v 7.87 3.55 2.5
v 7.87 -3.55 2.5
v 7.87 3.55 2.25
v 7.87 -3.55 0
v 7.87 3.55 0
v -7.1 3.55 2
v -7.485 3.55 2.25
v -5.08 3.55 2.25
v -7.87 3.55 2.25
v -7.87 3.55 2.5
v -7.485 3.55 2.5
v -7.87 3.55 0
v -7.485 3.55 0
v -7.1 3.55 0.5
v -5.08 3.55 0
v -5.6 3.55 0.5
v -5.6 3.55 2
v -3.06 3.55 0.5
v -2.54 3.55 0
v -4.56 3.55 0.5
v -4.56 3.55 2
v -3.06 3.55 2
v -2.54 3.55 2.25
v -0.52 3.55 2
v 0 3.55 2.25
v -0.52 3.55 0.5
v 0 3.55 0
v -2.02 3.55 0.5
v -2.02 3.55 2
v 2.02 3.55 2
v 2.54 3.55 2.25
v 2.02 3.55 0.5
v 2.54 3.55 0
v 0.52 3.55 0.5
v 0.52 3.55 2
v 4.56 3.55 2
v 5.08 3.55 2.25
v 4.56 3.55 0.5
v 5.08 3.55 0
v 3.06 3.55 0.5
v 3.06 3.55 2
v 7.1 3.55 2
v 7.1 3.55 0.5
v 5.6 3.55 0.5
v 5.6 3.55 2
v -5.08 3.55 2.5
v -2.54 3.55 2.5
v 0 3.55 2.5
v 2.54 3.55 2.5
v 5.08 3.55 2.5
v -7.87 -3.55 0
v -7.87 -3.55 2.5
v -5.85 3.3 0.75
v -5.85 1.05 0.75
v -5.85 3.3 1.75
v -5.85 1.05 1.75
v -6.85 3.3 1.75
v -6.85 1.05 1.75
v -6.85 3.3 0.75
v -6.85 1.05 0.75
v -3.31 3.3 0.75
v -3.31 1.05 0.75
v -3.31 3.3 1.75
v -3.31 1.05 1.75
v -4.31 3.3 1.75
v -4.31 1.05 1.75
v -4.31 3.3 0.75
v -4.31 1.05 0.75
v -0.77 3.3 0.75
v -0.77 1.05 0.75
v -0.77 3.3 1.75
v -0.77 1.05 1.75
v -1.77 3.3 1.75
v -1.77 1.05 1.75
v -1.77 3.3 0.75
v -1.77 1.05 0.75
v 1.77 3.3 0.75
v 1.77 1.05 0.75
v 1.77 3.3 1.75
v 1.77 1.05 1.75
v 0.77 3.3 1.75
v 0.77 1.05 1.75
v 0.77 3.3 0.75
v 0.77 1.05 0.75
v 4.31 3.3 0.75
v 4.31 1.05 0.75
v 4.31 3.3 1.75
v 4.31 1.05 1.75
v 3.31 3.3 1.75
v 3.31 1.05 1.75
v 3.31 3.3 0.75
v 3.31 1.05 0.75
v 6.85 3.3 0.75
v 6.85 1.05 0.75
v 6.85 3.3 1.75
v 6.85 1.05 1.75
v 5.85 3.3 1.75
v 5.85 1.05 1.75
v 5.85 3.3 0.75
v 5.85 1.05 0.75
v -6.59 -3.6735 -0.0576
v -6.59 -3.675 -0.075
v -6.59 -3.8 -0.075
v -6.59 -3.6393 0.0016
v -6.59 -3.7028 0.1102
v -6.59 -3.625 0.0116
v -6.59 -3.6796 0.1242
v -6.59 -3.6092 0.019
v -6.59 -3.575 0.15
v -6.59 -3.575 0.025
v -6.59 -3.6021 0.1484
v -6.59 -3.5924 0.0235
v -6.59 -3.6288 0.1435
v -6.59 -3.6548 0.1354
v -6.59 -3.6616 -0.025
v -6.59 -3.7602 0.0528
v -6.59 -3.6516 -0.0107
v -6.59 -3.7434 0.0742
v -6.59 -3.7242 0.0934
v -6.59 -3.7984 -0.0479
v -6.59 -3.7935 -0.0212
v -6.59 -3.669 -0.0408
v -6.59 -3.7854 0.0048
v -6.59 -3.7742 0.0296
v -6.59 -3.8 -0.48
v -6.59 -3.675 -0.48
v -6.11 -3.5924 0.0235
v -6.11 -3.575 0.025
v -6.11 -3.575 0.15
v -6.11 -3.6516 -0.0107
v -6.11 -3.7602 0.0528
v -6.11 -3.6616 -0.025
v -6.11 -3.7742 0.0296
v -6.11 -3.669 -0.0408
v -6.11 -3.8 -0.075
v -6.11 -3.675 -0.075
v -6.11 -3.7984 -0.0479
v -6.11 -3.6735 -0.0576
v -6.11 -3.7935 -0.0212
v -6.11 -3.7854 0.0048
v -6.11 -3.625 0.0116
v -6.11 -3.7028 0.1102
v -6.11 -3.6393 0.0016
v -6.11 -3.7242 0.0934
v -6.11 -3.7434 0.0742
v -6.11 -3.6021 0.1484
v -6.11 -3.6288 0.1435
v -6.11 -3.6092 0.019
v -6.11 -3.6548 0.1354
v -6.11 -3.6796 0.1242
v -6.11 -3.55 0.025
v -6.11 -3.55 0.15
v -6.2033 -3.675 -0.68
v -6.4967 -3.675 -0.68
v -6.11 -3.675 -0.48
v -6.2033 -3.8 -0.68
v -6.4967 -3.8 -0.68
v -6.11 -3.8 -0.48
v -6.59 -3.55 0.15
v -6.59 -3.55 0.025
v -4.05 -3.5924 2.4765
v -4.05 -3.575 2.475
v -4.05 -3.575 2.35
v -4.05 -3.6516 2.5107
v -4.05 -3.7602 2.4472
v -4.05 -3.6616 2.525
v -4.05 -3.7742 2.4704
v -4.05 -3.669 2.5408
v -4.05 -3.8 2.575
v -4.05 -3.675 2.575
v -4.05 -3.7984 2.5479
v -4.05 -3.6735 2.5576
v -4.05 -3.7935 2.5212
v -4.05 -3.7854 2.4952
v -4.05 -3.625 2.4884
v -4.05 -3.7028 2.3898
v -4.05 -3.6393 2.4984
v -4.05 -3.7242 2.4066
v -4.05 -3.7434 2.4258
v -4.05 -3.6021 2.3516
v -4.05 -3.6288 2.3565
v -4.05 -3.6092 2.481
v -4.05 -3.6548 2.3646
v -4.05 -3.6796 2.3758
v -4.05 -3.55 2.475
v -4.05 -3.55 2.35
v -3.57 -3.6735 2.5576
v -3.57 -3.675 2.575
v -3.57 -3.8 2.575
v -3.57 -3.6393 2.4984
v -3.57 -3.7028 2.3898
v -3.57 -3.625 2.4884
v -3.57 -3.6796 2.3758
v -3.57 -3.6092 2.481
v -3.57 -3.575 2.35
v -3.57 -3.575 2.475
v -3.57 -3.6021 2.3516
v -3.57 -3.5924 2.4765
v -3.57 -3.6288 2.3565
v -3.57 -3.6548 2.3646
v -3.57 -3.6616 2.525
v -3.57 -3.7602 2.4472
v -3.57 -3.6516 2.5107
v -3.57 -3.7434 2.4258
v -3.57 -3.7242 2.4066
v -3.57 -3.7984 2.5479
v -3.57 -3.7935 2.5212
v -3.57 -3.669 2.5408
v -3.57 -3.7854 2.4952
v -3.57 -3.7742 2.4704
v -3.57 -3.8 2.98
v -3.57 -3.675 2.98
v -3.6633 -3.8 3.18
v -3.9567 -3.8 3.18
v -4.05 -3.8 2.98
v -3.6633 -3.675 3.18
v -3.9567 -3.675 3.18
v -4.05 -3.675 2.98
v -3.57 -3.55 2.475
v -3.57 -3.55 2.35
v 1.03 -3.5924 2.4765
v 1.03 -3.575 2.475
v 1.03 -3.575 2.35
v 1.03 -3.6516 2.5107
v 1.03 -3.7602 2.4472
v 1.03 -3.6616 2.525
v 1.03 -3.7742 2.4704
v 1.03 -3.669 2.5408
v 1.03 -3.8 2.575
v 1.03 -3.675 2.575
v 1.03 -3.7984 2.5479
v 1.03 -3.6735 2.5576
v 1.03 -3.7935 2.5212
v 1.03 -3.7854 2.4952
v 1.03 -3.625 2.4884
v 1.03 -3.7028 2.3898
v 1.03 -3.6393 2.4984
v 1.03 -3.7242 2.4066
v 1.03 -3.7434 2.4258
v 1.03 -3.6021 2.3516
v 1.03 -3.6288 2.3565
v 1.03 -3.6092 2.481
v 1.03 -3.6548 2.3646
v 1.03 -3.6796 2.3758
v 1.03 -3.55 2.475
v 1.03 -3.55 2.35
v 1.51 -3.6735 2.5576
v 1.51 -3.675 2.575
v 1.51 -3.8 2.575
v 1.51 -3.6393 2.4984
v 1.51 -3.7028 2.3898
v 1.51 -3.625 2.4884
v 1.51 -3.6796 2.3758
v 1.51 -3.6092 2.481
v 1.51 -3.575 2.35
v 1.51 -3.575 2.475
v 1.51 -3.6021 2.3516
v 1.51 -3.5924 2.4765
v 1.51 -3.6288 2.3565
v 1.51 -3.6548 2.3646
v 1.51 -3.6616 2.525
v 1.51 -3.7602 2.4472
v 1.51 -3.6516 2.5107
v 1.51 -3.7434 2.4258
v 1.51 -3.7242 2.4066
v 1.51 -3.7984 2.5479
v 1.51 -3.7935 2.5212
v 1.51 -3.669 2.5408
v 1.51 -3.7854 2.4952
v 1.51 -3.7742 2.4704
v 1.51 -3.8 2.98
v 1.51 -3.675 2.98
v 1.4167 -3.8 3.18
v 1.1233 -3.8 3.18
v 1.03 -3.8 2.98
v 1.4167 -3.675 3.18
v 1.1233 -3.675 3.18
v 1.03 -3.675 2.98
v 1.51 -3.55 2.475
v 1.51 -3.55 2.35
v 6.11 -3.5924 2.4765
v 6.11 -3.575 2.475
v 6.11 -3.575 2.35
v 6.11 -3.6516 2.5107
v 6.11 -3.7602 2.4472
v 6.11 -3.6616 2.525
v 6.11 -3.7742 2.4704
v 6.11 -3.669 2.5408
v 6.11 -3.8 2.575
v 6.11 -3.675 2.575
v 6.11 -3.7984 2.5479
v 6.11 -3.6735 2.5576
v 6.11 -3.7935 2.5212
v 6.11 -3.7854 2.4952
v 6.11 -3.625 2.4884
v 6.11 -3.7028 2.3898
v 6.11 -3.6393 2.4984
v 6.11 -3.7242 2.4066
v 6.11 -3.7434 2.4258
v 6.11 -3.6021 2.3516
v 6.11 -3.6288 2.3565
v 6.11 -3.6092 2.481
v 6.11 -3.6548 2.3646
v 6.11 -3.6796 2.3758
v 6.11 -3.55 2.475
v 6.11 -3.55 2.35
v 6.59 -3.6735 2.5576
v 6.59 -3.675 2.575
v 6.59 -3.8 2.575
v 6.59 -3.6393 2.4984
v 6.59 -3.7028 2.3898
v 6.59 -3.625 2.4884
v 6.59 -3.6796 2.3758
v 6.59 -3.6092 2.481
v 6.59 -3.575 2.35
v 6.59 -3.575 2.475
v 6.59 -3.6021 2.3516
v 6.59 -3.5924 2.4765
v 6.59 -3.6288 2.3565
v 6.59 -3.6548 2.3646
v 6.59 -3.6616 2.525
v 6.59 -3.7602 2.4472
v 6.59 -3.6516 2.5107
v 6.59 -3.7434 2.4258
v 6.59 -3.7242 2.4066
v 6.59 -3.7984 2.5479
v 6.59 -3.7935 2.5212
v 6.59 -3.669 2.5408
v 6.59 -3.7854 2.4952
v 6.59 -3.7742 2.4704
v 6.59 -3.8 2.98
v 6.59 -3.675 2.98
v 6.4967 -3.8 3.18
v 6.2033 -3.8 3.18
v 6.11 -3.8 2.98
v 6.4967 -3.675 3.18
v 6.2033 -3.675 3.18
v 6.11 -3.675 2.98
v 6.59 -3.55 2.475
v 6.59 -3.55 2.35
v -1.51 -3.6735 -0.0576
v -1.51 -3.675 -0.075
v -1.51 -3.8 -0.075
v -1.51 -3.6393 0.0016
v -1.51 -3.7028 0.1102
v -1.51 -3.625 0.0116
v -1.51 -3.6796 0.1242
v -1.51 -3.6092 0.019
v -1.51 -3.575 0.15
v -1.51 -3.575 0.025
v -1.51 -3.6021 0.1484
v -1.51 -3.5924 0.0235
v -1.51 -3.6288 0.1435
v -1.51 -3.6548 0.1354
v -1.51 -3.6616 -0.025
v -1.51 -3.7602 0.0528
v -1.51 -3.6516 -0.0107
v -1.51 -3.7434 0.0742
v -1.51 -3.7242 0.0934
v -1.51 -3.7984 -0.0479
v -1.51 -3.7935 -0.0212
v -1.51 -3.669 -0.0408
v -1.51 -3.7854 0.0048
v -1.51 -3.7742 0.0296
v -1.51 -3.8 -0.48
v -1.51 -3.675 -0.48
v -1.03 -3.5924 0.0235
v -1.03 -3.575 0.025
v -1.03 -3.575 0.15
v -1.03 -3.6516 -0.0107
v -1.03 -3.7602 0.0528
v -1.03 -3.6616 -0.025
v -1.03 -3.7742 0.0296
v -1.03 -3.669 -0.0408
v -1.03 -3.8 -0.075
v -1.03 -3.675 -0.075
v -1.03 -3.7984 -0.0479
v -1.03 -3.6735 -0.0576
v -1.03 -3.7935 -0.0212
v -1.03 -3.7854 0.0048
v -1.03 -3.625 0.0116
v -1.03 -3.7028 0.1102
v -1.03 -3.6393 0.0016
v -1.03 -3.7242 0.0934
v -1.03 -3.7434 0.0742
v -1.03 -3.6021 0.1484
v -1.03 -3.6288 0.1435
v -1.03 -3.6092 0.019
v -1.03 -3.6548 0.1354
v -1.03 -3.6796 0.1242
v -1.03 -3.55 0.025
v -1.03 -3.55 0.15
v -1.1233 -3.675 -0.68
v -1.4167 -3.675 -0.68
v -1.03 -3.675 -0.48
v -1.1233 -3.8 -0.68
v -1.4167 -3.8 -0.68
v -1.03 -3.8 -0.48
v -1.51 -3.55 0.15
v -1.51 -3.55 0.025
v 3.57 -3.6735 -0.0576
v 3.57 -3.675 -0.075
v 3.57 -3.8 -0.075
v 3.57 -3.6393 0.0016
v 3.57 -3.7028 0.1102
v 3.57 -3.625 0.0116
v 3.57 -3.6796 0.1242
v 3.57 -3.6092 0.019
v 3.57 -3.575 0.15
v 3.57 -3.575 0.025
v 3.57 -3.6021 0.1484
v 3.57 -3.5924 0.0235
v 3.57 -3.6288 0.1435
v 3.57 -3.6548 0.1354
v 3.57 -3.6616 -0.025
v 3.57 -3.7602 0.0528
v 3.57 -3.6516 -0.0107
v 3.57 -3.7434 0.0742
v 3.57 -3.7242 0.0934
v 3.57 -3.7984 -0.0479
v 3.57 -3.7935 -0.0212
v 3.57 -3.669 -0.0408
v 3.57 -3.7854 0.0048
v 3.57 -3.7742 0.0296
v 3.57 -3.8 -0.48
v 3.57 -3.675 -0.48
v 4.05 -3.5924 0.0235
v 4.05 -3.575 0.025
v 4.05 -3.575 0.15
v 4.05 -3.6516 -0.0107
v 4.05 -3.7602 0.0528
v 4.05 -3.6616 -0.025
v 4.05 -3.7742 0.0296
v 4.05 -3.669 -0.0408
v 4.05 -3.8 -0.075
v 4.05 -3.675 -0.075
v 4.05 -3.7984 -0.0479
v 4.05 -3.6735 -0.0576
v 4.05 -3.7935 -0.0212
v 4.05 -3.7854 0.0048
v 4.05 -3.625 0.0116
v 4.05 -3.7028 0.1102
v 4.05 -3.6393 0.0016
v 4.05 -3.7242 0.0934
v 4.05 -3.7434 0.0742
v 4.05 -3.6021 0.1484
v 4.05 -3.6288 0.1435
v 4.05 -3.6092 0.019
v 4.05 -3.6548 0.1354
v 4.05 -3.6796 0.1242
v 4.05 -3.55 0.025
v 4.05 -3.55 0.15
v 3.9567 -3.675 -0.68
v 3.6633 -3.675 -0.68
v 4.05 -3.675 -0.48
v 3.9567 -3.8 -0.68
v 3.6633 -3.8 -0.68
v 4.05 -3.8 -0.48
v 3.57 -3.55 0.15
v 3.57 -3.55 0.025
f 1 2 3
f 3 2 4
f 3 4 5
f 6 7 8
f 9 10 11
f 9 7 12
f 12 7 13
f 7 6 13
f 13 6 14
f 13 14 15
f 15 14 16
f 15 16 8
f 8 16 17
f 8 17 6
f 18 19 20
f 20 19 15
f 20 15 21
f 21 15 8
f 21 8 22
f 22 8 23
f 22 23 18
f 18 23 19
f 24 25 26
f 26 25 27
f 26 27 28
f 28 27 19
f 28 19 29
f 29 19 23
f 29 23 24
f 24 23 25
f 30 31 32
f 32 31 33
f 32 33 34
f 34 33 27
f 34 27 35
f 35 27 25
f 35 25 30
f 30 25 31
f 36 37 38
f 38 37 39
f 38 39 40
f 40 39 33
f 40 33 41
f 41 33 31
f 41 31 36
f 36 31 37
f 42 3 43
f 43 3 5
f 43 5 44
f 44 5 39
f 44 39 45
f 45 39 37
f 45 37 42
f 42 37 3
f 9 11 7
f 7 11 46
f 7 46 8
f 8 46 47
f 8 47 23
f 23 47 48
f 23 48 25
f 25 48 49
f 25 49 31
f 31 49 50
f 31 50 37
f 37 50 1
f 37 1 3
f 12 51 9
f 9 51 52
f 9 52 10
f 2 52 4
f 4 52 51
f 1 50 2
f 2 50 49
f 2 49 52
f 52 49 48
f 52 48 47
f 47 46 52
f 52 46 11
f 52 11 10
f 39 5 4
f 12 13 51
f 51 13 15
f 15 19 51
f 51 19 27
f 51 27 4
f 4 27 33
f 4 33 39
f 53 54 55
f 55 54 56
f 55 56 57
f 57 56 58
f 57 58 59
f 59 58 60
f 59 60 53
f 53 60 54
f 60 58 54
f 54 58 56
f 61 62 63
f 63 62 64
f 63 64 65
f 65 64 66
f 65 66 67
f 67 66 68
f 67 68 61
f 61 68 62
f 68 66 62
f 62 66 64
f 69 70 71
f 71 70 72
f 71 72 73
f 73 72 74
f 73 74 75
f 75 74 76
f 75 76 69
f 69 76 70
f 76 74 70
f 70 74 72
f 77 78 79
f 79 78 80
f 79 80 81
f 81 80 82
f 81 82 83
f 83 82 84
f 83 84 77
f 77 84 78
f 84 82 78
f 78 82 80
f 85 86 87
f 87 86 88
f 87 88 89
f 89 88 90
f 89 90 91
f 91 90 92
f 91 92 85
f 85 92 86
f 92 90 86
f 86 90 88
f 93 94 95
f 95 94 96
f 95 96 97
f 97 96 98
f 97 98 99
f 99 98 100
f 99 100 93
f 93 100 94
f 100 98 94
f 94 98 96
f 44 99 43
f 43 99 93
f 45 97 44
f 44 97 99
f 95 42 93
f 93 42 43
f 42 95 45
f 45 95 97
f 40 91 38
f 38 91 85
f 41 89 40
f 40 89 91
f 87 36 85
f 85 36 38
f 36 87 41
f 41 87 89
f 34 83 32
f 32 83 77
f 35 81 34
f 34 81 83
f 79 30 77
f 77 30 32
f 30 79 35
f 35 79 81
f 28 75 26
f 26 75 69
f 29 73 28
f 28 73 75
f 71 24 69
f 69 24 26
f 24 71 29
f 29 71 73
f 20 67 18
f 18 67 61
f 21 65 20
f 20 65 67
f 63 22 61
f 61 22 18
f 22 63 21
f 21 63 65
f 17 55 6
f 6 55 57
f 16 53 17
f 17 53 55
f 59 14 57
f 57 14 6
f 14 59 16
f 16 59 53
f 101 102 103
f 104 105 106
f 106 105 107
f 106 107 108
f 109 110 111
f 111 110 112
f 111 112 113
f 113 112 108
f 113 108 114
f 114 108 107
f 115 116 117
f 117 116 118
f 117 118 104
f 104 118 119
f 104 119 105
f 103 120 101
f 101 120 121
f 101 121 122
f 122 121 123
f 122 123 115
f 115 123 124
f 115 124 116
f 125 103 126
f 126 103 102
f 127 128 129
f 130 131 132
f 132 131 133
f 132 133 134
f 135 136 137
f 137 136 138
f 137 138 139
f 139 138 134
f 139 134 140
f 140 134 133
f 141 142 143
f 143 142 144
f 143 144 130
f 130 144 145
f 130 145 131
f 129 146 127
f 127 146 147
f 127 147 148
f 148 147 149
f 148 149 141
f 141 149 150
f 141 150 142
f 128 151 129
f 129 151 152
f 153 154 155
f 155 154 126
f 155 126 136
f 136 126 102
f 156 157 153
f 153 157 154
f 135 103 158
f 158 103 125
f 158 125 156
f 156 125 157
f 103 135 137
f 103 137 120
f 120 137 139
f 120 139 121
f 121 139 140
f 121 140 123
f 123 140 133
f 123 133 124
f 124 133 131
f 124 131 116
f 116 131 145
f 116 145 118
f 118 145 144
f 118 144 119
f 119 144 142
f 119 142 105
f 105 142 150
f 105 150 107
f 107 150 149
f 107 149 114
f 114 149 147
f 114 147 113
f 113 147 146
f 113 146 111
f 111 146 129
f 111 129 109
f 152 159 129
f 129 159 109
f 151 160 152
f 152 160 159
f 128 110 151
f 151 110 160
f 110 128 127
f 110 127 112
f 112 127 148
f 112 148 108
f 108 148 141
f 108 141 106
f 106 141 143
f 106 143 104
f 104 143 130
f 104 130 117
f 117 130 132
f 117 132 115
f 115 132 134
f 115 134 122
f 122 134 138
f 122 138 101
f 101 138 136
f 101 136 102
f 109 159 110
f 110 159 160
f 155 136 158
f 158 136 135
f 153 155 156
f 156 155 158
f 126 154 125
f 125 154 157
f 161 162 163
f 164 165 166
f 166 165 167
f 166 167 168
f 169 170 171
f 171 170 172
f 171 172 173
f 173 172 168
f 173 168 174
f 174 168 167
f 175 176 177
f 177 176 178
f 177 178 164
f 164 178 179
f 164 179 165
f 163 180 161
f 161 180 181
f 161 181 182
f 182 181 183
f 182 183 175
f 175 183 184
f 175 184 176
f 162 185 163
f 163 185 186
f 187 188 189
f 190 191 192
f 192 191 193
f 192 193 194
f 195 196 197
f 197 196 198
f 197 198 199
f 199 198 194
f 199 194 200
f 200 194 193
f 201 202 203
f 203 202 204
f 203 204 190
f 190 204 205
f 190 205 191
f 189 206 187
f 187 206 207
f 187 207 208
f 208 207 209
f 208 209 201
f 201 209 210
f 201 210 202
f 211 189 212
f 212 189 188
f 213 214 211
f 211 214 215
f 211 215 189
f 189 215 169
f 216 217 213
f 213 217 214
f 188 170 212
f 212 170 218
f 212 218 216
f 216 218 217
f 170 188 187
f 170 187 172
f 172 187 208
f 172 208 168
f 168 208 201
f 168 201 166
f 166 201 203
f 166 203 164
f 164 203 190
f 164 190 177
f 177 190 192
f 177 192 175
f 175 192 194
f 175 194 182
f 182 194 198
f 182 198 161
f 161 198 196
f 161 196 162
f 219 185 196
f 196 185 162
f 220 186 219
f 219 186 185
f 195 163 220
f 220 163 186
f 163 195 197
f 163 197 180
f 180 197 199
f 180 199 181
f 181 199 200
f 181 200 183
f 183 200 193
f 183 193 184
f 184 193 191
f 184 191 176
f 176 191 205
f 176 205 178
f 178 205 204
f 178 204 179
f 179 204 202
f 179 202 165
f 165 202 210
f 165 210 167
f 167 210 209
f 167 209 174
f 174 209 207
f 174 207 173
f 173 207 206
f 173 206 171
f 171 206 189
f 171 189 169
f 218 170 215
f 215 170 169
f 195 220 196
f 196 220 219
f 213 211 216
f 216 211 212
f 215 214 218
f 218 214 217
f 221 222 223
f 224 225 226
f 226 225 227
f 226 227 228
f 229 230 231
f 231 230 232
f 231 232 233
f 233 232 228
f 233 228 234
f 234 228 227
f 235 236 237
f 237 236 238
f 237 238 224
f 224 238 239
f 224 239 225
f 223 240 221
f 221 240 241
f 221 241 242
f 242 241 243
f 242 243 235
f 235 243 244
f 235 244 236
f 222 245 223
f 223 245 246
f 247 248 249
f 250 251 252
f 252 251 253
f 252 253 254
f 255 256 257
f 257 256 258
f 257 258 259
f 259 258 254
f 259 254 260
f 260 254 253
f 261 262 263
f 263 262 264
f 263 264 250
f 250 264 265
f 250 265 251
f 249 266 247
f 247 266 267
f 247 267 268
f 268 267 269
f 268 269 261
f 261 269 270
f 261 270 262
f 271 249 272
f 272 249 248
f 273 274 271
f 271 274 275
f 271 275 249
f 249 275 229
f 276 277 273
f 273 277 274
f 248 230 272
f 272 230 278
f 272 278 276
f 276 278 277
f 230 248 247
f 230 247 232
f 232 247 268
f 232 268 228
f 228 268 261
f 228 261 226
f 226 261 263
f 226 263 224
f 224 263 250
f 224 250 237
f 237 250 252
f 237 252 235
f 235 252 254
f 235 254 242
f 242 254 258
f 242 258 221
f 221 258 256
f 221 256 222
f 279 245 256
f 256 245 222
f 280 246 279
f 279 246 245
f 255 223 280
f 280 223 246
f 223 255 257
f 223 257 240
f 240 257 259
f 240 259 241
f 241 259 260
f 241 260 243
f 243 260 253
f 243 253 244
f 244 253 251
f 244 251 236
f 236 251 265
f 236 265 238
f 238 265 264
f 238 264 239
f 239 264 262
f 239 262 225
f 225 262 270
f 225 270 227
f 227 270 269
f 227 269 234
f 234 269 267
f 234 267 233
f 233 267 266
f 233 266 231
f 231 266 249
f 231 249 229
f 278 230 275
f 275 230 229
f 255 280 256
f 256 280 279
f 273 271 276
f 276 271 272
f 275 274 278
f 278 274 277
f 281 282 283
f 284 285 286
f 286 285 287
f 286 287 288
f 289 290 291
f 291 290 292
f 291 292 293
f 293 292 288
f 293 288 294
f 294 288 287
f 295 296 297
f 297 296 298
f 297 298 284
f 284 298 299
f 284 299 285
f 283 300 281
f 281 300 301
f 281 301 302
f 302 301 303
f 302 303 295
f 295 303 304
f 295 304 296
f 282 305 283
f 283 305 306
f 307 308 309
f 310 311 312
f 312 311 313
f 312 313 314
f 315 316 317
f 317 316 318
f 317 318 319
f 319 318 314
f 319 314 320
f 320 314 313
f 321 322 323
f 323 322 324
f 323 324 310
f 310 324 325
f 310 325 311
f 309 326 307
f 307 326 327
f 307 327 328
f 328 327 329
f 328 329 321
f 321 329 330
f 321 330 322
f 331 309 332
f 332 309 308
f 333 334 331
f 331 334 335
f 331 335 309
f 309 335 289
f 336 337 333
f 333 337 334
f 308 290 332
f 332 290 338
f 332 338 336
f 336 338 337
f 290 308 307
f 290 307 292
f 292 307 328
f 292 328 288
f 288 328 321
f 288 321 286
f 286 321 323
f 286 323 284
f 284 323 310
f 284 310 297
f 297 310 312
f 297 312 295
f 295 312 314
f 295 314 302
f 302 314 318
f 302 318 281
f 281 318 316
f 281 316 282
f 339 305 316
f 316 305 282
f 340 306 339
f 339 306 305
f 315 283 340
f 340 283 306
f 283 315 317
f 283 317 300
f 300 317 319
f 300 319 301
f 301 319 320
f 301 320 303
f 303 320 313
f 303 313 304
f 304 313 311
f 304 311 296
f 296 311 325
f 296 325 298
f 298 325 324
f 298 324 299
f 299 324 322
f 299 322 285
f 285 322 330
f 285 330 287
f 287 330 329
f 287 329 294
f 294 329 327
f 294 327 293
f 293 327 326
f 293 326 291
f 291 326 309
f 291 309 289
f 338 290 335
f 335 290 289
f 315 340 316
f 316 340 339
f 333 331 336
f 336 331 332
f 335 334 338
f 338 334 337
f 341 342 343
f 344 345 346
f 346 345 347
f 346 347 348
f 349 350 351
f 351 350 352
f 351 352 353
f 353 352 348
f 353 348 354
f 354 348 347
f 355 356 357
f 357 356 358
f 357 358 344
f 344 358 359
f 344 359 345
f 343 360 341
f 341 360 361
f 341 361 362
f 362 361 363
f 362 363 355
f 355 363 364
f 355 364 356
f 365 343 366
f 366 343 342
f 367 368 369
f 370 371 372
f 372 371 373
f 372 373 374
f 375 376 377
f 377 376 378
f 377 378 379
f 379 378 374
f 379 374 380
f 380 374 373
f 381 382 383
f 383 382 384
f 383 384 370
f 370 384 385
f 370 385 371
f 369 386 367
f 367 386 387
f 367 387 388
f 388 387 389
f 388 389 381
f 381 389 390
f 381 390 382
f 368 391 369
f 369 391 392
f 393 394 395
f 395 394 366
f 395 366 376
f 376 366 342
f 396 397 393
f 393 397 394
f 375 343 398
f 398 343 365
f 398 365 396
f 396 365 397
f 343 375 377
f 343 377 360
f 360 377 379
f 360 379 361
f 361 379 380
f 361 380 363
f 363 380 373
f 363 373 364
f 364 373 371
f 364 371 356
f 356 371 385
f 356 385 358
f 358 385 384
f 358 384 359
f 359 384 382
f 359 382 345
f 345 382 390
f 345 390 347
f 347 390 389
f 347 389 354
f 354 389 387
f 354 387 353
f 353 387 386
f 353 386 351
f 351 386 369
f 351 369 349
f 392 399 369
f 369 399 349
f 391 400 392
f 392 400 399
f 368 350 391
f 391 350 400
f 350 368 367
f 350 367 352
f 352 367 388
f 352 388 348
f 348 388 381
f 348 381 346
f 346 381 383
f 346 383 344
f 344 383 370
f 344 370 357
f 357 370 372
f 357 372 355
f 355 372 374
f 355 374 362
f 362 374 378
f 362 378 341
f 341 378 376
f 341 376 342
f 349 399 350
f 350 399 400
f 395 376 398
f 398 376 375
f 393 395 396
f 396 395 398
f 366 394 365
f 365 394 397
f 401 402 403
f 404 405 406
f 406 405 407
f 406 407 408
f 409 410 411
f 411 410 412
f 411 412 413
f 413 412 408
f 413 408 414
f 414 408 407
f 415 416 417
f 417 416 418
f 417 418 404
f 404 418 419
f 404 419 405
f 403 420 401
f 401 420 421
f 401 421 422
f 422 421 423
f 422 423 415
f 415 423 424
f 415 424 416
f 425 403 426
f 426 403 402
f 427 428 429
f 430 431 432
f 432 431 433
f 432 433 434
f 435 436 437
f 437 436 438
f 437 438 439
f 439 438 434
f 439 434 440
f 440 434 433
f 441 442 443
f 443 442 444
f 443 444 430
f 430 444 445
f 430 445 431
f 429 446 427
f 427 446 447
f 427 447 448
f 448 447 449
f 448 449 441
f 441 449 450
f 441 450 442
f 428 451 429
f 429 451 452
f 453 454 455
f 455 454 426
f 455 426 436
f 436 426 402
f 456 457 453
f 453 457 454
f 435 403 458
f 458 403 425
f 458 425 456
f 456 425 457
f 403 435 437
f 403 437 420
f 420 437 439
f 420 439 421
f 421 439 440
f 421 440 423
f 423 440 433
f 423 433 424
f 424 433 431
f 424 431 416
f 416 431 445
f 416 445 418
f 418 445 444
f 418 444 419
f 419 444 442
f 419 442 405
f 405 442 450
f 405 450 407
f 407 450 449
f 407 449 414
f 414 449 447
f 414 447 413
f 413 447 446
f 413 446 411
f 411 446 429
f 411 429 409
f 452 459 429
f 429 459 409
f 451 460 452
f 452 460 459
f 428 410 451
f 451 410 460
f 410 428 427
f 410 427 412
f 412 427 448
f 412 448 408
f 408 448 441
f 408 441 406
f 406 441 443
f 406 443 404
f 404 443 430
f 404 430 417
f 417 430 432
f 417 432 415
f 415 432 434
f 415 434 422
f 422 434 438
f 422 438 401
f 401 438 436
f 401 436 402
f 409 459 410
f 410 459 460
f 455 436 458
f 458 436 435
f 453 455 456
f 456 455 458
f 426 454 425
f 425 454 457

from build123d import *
from OCP.BRepFilletAPI import BRepFilletAPI_MakeChamfer

# Parameters (mm, degrees)
SKETCH1_W                  = 15.74
SKETCH1_H                  = 7.1
BOSS_EXTRUDE1_DEPTH        = 2.5
SKETCH2_W                  = 1
SKETCH2_H                  = 1
CUT_EXTRUDE1_DEPTH         = 2.5
CHAMFER1_SIZE              = 0.25
LPATTERN6_COUNT            = 6
LPATTERN6_PITCH            = 2.54
CHAMFER1_OF_LPATTERN6_SIZE = 0.25
BASE_FLANGE2_DEPTH         = 0.24
BASE_FLANGE2_DEPTH_BACK    = 0.24
BASE_FLANGE3_DEPTH         = 0.24
BASE_FLANGE3_DEPTH_BACK    = 0.24
CHAMFER3_SIZE              = 0.2
CHAMFER3_SIZE2             = 0.093261532
CHAMFER4_SIZE              = 0.2
CHAMFER4_SIZE2             = 0.093261532
LPATTERN4_COUNT            = 3
LPATTERN4_PITCH            = 5.08
LPATTERN3_COUNT            = 3
LPATTERN3_PITCH            = 5.08


# Sheet-metal steps are written as plain solids
with BuildPart() as part:
    # Sketch1 → Boss-Extrude1 (new body)
    with BuildSketch(Plane.XY):
        Rectangle(SKETCH1_W, SKETCH1_H)
    extrude(amount=BOSS_EXTRUDE1_DEPTH)

    # Sketch2 → Cut-Extrude1 (cut)
    with BuildSketch(Plane(origin=(0, 3.55, 0), x_dir=(1, 0, 0), z_dir=(0, 1, 0))):
        with Locations((-6.35, -1.25)):
            Rectangle(SKETCH2_W, SKETCH2_H)
    cut_extrude1 = extrude(amount=-CUT_EXTRUDE1_DEPTH, mode=Mode.SUBTRACT)

    # Chamfer1
    chamfer1_edges = [part.edges().sort_by_distance(p)[0] for p in [
        (-5.85, 3.55, 1.25),
        (-6.35, 3.55, 0.75),
        (-6.85, 3.55, 1.25),
        (-6.35, 3.55, 1.75),
    ]]
    chamfer(chamfer1_edges, length=CHAMFER1_SIZE)

    # LPattern6: Cut-Extrude1 ×6
    with Locations(*[(i * LPATTERN6_PITCH, 0, 0) for i in range(1, LPATTERN6_COUNT)]):
        add(cut_extrude1, mode=Mode.SUBTRACT)

    # Chamfer1 of LPattern6
    chamfer1_of_lpattern6_edges = [part.edges().sort_by_distance(p)[0] for p in [
        (-3.31, 3.55, 1.25),
        (-3.81, 3.55, 0.75),
        (-4.31, 3.55, 1.25),
        (-3.81, 3.55, 1.75),
        (-0.77, 3.55, 1.25),
        (-1.27, 3.55, 0.75),
        (-1.77, 3.55, 1.25),
        (-1.27, 3.55, 1.75),
        (1.77, 3.55, 1.25),
        (1.27, 3.55, 0.75),
        (0.77, 3.55, 1.25),
        (1.27, 3.55, 1.75),
        (4.31, 3.55, 1.25),
        (3.81, 3.55, 0.75),
        (3.31, 3.55, 1.25),
        (3.81, 3.55, 1.75),
        (6.85, 3.55, 1.25),
        (6.35, 3.55, 0.75),
        (5.85, 3.55, 1.25),
        (6.35, 3.55, 1.75),
    ]]
    chamfer(chamfer1_of_lpattern6_edges, length=CHAMFER1_OF_LPATTERN6_SIZE)


with BuildPart() as body_2:
    # Sketch5 → Base-Flange2 (new, two sides: drawn at the far end of the back side and taken through both)
    with BuildSketch(Plane.ZY.offset(6.35).offset(-BASE_FLANGE2_DEPTH_BACK)):
        with BuildLine():
            Line((0.15, -3.55), (0.15, -3.575))
            ThreePointArc((0.15, -3.575), (0.084099026, -3.734099026), (-0.075, -3.8))
            Line((-0.075, -3.8), (-0.68, -3.8))
            Line((-0.68, -3.8), (-0.68, -3.675))
            Line((-0.68, -3.675), (-0.075, -3.675))
            ThreePointArc((-0.075, -3.675), (-0.004289322, -3.645710678), (0.025, -3.575))
            Line((0.025, -3.575), (0.025, -3.55))
            Line((0.025, -3.55), (0.15, -3.55))
        make_face()
    extrude(amount=BASE_FLANGE2_DEPTH + BASE_FLANGE2_DEPTH_BACK)

    # Chamfer4: one chamfer whose edges measure the first distance from different faces: ONE call of the kernel's chamfer builder (chamfer() names one face for all edges)
    chamfer4_edges_1 = [body_2.edges().sort_by_distance(p)[0] for p in [
        (-6.11, -3.7375, -0.68),
    ]]
    chamfer4_side_1 = [body_2.faces().sort_by_distance(p)[0] for p in [
        (-6.11, -3.717002494, -0.245845427),
    ]]
    chamfer4_edges_2 = [body_2.edges().sort_by_distance(p)[0] for p in [
        (-6.59, -3.7375, -0.68),
    ]]
    chamfer4_side_2 = [body_2.faces().sort_by_distance(p)[0] for p in [
        (-6.59, -3.717002494, -0.245845427),
    ]]
    chamfer4 = BRepFilletAPI_MakeChamfer(body_2.part.solid().wrapped)
    for e in chamfer4_edges_1:
        chamfer4.Add(CHAMFER4_SIZE, CHAMFER4_SIZE2, e.wrapped, chamfer4_side_1[0].wrapped)  # the first distance lies on this face
    for e in chamfer4_edges_2:
        chamfer4.Add(CHAMFER4_SIZE, CHAMFER4_SIZE2, e.wrapped, chamfer4_side_2[0].wrapped)  # the first distance lies on this face
    add(Compound.cast(chamfer4.Shape()), mode=Mode.REPLACE)


with BuildPart() as body_3:
    # Sketch22 → Base-Flange3 (new, two sides: drawn at the far end of the back side and taken through both)
    with BuildSketch(Plane.ZY.offset(3.81).offset(-BASE_FLANGE3_DEPTH_BACK)):
        with BuildLine():
            Line((2.35, -3.55), (2.35, -3.575))
            ThreePointArc((2.35, -3.575), (2.415900974, -3.734099026), (2.575, -3.8))
            Line((2.575, -3.8), (3.18, -3.8))
            Line((3.18, -3.8), (3.18, -3.675))
            Line((3.18, -3.675), (2.575, -3.675))
            ThreePointArc((2.575, -3.675), (2.504289322, -3.645710678), (2.475, -3.575))
            Line((2.475, -3.575), (2.475, -3.55))
            Line((2.475, -3.55), (2.35, -3.55))
        make_face()
    extrude(amount=BASE_FLANGE3_DEPTH + BASE_FLANGE3_DEPTH_BACK)

    # Chamfer3: one chamfer whose edges measure the first distance from different faces: ONE call of the kernel's chamfer builder (chamfer() names one face for all edges)
    chamfer3_edges_1 = [body_3.edges().sort_by_distance(p)[0] for p in [
        (-3.57, -3.7375, 3.18),
    ]]
    chamfer3_side_1 = [body_3.faces().sort_by_distance(p)[0] for p in [
        (-3.57, -3.717002494, 2.745845427),
    ]]
    chamfer3_edges_2 = [body_3.edges().sort_by_distance(p)[0] for p in [
        (-4.05, -3.7375, 3.18),
    ]]
    chamfer3_side_2 = [body_3.faces().sort_by_distance(p)[0] for p in [
        (-4.05, -3.717002494, 2.745845427),
    ]]
    chamfer3 = BRepFilletAPI_MakeChamfer(body_3.part.solid().wrapped)
    for e in chamfer3_edges_1:
        chamfer3.Add(CHAMFER3_SIZE, CHAMFER3_SIZE2, e.wrapped, chamfer3_side_1[0].wrapped)  # the first distance lies on this face
    for e in chamfer3_edges_2:
        chamfer3.Add(CHAMFER3_SIZE, CHAMFER3_SIZE2, e.wrapped, chamfer3_side_2[0].wrapped)  # the first distance lies on this face
    add(Compound.cast(chamfer3.Shape()), mode=Mode.REPLACE)


with BuildPart() as lpattern4_1:
    # LPattern4: pattern copy
    add(body_2.part.moved(Location(Vector(1, 0, 0) * (1 * LPATTERN4_PITCH))))


with BuildPart() as lpattern4_2:
    # LPattern4: pattern copy
    add(body_2.part.moved(Location(Vector(1, 0, 0) * (2 * LPATTERN4_PITCH))))


with BuildPart() as lpattern3_1:
    # LPattern3: pattern copy
    add(body_3.part.moved(Location(Vector(1, 0, 0) * (1 * LPATTERN3_PITCH))))


with BuildPart() as lpattern3_2:
    # LPattern3: pattern copy
    add(body_3.part.moved(Location(Vector(1, 0, 0) * (2 * LPATTERN3_PITCH))))


solid = Compound([part.part, body_2.part, body_3.part, lpattern4_1.part, lpattern4_2.part, lpattern3_1.part, lpattern3_2.part])
